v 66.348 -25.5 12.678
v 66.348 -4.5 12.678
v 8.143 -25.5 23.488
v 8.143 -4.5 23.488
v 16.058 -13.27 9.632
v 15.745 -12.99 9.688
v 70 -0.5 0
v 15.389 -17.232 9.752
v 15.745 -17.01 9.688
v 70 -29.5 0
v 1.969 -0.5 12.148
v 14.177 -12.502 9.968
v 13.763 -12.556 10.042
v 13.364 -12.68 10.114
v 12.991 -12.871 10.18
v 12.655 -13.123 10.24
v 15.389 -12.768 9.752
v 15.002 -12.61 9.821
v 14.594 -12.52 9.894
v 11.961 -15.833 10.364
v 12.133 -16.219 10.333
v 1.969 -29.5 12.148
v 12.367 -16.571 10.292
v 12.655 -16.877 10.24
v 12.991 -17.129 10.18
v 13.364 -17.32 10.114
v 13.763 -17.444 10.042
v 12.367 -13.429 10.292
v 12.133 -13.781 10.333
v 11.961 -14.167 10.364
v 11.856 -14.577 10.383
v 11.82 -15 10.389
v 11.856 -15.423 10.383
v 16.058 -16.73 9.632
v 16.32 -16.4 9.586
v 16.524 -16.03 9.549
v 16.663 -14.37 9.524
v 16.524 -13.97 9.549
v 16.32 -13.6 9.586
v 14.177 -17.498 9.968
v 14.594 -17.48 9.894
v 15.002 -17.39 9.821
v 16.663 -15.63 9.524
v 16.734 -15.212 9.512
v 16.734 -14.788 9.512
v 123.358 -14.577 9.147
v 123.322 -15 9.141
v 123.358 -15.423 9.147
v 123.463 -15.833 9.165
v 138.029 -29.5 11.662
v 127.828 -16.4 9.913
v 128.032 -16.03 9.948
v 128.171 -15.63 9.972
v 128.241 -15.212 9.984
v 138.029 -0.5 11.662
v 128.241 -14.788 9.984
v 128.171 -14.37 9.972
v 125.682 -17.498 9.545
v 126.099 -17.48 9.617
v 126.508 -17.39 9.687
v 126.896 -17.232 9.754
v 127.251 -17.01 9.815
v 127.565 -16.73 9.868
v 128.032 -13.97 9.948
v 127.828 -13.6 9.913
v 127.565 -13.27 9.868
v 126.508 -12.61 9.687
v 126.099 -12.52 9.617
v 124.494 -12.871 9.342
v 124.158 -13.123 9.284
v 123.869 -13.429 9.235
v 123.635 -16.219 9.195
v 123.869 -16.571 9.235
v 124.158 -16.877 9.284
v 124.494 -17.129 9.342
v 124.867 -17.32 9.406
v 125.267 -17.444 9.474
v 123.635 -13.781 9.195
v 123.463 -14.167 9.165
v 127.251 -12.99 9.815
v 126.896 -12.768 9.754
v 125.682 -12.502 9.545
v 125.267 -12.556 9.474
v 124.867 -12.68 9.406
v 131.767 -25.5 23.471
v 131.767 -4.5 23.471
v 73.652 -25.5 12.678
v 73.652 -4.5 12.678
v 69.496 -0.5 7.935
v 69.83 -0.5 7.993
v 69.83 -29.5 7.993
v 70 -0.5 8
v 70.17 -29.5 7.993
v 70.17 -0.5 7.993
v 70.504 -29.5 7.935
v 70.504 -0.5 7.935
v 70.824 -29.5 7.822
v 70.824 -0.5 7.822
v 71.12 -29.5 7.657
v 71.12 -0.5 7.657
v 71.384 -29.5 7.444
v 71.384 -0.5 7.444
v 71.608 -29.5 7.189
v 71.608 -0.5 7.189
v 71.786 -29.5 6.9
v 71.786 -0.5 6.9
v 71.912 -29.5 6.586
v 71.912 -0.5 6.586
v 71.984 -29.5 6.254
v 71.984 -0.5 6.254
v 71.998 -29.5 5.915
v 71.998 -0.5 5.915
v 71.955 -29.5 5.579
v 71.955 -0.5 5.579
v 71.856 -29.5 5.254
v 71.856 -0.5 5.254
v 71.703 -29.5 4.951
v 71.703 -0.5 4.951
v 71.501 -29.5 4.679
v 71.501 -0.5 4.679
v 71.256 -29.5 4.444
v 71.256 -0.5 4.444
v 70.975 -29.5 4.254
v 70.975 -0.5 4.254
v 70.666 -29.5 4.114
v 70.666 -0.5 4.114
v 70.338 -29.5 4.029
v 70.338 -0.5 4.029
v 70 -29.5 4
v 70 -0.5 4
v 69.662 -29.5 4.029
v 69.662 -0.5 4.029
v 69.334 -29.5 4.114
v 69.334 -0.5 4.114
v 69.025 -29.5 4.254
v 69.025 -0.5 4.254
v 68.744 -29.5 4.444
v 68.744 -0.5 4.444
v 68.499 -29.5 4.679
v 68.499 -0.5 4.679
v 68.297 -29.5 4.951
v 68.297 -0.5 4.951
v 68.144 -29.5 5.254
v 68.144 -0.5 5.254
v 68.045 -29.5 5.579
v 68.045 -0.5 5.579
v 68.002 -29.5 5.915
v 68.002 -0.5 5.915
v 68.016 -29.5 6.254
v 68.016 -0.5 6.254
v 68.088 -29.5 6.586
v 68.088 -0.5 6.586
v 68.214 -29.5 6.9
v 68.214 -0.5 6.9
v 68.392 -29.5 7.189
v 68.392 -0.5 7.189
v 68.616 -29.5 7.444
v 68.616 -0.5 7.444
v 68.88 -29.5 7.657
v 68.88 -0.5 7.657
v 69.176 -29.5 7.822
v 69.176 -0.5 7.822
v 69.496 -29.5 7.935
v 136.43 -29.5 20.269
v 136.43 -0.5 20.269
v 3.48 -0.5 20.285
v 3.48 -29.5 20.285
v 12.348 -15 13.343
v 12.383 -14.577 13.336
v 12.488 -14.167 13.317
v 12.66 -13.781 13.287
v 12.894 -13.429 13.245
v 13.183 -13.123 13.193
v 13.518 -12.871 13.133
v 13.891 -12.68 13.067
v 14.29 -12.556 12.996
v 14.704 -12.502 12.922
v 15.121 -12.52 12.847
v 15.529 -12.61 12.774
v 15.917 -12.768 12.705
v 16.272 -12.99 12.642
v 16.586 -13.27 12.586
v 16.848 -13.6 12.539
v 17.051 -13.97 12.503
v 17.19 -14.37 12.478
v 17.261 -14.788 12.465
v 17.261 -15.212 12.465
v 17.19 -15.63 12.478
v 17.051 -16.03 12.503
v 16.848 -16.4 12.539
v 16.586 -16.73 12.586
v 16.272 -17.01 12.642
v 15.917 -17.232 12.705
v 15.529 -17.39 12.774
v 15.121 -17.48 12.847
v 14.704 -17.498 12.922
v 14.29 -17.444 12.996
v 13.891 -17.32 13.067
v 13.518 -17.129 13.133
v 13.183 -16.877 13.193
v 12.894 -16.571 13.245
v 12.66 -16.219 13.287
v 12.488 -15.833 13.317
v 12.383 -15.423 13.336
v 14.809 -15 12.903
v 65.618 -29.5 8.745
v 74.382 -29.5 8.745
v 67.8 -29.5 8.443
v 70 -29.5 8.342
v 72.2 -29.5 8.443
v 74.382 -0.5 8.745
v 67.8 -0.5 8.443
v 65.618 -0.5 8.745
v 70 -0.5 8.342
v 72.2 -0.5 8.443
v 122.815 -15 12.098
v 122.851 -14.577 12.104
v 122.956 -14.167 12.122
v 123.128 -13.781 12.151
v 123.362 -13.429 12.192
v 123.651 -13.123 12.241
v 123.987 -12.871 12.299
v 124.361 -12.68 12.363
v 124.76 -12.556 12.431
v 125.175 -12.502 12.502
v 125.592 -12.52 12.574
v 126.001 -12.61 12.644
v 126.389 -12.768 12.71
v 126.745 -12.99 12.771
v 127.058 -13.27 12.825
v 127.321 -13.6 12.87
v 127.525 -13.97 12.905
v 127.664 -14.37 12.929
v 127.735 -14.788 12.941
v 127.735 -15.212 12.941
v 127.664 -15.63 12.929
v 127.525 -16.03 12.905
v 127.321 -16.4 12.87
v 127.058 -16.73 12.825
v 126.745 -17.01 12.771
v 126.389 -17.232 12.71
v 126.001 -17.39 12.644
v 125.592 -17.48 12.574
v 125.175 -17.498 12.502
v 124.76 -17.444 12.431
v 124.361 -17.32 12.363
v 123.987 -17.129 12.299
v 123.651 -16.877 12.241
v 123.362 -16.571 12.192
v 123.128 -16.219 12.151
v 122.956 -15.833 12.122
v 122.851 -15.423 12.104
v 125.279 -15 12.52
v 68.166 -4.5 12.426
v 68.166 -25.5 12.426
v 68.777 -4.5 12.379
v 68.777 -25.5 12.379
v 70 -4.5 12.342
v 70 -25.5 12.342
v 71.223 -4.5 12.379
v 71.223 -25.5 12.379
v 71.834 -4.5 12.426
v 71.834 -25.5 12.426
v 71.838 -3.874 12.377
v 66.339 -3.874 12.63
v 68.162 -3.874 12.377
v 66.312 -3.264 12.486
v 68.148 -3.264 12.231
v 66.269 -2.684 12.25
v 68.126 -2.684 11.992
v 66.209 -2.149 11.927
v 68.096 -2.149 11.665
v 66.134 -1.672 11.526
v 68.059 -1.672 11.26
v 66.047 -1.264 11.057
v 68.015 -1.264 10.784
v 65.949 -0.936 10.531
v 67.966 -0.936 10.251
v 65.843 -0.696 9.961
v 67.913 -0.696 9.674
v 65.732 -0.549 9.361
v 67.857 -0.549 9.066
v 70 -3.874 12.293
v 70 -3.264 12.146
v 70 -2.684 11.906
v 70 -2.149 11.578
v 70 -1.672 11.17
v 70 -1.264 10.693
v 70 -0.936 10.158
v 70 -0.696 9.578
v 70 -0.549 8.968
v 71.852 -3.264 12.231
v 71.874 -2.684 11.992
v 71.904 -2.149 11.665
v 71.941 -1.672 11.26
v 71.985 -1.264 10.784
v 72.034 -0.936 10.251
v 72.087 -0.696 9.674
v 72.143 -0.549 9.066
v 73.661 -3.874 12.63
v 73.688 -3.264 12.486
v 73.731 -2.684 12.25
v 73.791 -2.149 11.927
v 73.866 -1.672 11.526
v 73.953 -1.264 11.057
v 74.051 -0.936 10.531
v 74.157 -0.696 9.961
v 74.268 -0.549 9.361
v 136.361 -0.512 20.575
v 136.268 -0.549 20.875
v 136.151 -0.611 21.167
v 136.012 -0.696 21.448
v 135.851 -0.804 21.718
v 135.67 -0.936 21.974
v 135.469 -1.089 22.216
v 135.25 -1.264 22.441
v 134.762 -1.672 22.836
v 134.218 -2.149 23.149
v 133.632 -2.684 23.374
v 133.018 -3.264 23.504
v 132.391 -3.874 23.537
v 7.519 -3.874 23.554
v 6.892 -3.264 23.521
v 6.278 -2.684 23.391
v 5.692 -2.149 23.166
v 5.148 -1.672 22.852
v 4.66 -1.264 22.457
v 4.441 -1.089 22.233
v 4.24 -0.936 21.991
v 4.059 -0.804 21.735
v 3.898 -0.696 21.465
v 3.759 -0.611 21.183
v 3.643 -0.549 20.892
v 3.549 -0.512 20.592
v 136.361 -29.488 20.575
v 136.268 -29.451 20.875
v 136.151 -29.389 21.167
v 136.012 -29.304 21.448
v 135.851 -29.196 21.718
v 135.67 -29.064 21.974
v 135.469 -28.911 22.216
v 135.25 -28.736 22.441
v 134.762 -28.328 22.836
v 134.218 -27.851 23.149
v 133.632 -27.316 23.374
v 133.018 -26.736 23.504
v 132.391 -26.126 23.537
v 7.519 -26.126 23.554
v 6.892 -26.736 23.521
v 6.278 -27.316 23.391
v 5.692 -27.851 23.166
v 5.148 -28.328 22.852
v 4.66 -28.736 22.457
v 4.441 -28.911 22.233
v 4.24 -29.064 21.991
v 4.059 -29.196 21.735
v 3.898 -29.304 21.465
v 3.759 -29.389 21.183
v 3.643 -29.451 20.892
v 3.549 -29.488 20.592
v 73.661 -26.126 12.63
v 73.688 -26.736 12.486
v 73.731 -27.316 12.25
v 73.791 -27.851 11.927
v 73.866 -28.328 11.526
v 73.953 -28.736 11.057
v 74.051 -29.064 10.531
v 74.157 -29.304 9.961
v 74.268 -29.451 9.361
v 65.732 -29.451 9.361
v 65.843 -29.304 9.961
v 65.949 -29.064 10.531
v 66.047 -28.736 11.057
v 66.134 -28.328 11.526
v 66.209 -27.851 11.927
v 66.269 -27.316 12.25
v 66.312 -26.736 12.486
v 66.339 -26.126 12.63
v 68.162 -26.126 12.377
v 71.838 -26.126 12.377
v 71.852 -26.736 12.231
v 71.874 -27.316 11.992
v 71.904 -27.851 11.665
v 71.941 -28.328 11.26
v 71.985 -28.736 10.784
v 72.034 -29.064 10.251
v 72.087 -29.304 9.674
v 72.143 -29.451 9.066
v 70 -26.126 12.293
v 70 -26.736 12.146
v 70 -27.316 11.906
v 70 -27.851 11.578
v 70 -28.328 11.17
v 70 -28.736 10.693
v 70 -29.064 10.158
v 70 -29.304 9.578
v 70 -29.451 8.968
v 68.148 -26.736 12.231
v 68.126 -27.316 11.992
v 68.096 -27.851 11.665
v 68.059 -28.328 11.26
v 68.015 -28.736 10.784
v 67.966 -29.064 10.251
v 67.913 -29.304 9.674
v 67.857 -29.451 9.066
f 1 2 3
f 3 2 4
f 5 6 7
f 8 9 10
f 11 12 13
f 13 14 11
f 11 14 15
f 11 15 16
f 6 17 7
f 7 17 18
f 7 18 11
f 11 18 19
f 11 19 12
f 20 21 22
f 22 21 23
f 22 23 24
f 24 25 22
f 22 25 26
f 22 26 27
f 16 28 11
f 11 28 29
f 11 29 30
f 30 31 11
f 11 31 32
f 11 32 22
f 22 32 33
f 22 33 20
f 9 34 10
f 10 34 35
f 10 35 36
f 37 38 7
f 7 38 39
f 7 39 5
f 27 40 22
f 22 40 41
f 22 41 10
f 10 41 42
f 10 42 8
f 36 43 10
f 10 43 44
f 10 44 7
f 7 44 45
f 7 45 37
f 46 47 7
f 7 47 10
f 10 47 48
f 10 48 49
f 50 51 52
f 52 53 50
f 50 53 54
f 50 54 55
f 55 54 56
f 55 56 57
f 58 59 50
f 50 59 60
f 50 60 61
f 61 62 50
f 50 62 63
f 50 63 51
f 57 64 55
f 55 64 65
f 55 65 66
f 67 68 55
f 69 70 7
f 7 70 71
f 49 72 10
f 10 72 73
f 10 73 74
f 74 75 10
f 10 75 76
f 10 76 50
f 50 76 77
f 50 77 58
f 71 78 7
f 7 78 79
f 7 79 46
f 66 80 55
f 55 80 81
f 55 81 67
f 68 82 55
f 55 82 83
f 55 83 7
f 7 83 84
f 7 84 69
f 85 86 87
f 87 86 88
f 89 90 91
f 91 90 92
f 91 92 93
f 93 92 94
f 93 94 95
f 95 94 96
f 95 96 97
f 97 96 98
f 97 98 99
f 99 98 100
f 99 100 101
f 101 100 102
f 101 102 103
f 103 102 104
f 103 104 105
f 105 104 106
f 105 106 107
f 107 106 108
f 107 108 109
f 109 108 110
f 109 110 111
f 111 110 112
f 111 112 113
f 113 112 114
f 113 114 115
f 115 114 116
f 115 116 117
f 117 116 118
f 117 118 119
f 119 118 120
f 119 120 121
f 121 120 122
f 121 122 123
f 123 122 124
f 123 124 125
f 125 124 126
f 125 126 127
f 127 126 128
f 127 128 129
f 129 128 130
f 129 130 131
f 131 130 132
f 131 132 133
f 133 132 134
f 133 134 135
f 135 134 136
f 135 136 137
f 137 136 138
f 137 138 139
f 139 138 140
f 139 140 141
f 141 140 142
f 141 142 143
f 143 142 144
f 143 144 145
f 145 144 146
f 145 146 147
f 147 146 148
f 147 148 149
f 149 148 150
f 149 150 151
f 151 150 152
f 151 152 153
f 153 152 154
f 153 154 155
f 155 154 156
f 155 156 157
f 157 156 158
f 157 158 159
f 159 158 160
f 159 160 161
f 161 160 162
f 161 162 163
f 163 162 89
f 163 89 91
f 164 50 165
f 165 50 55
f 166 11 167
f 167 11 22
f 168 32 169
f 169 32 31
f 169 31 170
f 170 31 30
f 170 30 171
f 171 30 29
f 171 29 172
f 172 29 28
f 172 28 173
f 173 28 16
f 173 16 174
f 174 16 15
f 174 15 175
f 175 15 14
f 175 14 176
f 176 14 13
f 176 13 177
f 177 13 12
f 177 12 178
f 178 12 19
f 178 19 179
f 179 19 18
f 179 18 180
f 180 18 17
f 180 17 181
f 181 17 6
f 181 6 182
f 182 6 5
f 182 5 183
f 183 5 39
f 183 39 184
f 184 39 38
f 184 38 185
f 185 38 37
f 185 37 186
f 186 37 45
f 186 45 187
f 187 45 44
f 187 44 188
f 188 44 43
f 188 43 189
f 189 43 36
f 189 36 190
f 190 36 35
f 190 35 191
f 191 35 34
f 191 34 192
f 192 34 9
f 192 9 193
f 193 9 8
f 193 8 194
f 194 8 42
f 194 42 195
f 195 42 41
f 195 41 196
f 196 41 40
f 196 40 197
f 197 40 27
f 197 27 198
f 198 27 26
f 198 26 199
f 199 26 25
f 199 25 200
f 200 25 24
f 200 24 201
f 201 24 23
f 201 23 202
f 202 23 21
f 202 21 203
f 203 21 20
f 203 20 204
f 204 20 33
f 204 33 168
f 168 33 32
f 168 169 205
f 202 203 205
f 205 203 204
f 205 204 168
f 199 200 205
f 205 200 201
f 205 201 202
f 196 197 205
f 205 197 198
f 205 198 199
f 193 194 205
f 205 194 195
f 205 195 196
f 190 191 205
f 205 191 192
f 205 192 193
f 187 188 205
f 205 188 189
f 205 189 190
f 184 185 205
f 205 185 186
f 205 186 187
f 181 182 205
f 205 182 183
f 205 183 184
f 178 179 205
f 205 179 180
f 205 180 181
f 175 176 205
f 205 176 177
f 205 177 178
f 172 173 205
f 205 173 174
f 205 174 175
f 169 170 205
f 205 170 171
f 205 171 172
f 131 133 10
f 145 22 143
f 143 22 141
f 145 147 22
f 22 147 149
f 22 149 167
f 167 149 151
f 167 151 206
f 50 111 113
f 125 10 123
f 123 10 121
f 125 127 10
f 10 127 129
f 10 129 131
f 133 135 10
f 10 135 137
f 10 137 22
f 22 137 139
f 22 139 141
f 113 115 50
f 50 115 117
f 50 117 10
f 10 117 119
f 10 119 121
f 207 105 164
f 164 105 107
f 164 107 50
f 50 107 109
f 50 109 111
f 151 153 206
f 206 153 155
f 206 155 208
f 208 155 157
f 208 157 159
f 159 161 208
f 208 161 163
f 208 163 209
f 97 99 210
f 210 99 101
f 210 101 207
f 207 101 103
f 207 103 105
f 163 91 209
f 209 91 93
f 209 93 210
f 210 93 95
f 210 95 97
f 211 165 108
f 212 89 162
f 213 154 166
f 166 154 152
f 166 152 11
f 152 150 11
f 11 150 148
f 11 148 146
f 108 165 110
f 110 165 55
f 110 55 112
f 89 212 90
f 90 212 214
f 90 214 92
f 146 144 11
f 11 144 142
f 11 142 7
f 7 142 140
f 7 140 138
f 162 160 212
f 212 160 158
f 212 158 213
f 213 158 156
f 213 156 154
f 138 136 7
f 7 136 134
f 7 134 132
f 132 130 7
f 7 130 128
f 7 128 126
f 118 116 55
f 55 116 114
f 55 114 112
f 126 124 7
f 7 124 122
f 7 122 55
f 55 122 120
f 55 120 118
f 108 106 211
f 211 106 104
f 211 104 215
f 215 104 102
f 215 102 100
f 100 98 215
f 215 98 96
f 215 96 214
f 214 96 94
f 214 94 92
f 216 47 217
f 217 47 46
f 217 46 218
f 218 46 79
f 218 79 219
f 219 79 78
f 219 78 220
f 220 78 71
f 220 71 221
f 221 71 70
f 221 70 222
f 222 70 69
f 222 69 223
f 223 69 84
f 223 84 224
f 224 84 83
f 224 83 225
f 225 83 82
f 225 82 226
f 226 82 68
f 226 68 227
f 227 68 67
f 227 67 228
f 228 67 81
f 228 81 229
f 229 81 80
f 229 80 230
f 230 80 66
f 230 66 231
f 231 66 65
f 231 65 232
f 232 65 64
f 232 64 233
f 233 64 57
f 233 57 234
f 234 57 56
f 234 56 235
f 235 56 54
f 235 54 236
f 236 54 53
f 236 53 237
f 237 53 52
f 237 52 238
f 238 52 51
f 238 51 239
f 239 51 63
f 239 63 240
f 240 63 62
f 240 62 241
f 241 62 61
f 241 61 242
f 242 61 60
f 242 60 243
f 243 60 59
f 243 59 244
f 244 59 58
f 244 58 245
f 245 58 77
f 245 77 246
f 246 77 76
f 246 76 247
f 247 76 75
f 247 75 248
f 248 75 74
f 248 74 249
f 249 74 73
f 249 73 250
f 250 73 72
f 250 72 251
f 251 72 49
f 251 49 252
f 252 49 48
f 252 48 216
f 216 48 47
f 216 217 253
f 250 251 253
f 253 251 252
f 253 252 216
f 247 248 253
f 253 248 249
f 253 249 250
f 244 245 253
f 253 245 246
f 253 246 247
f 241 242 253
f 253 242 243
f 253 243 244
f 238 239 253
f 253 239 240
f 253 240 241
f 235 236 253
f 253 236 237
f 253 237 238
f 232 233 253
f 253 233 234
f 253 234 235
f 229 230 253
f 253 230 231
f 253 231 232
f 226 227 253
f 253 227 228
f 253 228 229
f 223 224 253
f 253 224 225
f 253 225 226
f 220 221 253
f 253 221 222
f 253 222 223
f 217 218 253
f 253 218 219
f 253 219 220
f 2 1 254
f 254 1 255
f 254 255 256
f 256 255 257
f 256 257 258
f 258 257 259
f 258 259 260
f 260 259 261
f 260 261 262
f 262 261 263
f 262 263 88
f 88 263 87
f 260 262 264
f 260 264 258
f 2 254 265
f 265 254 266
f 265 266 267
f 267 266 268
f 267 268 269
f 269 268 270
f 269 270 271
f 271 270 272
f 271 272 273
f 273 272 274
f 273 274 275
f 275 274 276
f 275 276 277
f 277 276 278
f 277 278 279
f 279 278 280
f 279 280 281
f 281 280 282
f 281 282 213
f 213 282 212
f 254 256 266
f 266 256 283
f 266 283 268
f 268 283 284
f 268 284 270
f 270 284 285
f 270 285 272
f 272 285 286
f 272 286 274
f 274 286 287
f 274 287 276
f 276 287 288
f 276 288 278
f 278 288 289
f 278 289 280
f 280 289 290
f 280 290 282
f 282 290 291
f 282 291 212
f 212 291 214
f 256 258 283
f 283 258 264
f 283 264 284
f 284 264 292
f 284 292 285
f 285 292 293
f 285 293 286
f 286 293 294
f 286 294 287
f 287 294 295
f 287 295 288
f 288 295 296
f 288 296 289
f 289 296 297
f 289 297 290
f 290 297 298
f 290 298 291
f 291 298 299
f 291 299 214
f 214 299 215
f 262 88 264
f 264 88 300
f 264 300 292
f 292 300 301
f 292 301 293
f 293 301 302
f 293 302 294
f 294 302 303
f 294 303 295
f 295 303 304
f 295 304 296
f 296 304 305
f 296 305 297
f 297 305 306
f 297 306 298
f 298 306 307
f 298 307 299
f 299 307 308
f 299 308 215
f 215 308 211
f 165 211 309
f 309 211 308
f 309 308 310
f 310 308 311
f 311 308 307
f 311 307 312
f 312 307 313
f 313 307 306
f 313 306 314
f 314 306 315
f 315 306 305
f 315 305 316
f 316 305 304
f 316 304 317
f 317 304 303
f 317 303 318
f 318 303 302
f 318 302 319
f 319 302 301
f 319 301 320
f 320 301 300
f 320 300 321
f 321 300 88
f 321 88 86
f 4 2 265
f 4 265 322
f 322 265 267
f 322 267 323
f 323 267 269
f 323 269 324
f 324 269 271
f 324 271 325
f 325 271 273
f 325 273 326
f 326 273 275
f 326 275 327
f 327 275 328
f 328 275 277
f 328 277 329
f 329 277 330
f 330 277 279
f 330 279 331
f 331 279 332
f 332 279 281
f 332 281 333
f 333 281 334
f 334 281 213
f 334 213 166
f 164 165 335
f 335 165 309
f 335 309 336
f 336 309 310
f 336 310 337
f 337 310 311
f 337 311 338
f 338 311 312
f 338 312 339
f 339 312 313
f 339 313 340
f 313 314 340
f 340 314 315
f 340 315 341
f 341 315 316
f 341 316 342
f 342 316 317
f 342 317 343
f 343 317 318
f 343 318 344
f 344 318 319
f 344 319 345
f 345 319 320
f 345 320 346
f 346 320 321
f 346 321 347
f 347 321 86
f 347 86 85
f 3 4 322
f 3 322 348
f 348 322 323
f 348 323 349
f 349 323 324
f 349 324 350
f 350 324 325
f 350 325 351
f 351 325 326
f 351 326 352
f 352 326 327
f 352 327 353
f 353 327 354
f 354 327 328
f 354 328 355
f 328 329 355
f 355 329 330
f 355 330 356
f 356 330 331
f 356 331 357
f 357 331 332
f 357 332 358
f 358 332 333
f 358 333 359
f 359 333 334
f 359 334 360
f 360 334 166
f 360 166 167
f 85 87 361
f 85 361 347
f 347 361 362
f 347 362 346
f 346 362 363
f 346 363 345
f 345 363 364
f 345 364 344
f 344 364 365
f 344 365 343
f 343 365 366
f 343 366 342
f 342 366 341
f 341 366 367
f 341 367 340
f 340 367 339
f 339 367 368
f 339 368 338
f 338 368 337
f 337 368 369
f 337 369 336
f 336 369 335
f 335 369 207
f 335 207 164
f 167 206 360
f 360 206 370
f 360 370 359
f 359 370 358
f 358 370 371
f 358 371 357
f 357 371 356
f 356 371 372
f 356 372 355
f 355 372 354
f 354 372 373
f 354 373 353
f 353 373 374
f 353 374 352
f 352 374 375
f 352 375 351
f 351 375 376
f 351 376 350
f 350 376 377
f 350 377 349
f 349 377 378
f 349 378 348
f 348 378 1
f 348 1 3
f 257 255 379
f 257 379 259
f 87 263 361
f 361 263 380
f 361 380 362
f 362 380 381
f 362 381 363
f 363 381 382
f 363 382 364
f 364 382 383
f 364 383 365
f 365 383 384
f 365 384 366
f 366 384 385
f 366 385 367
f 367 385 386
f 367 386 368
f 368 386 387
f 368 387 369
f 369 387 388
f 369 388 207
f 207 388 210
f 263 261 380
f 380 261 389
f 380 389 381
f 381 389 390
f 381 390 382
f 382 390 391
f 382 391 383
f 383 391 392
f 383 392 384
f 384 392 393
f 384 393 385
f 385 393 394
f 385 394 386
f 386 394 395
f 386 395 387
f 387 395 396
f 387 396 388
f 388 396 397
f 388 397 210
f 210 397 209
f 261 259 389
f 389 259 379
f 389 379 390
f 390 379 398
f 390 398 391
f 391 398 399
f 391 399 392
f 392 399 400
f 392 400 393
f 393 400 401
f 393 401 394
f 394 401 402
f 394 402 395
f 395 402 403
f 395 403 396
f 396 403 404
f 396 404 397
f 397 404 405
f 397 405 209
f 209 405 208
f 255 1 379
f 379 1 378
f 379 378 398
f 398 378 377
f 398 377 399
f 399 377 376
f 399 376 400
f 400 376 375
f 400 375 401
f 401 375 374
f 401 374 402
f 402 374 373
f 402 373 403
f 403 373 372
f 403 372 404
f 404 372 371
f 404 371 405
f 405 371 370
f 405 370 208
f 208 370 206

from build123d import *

# Parameters (mm, degrees)
ESQUISSE1_W              = 140
ESQUISSE1_H              = 30
BOSS_EXTRU_1_DEPTH       = 20
ESQUISSE3_W              = 140
ESQUISSE3_H              = 30
BOSS_EXTRU_2_DEPTH       = 20
BOSS_EXTRU_3_DEPTH       = 30
BOSS_EXTRU_4_DEPTH       = 30
ESQUISSE12_W             = 140
ESQUISSE12_H             = 30
ENL_V_MAT_EXTRU_1_DEPTH  = 41
ESQUISSE13_R             = 2
ENL_V_MAT_EXTRU_2_DEPTH  = 31
ESQUISSE25_R             = 2.5
ENL_V_MAT_EXTRU_11_DEPTH = 3
ENL_V_MAT_EXTRU_5_DEPTH  = 31
ENL_V_MAT_EXTRU_6_DEPTH  = 31
ESQUISSE19_W             = 12.781453569
ESQUISSE19_H             = 30
ENL_V_MAT_EXTRU_7_DEPTH  = 2
ESQUISSE20_W             = 12.289859201
ESQUISSE20_H             = 30
ENL_V_MAT_EXTRU_8_DEPTH  = 2
ENL_V_MAT_EXTRU_9_DEPTH  = 0.5
ENL_V_MAT_EXTRU_10_DEPTH = 0.5
ESQUISSE15_R             = 2.5
ENL_V_MAT_EXTRU_15_DEPTH = 3
CONG_1_R                 = 20
CONG_3_R                 = 4


with BuildPart() as part:
    # Esquisse1 → Boss.-Extru.1 (new body)
    with BuildSketch(Plane.XY):
        with Locations((70, 15)):
            Rectangle(ESQUISSE1_W, ESQUISSE1_H)
    extrude(amount=BOSS_EXTRU_1_DEPTH)

    # Esquisse3 → Boss.-Extru.2 (add)
    with BuildSketch(Plane.XY.offset(20)):
        with Locations((70, 15)):
            Rectangle(ESQUISSE3_W, ESQUISSE3_H)
    extrude(amount=BOSS_EXTRU_2_DEPTH)

    # Esquisse5 → Boss.-Extru.3 (add)
    with BuildSketch(Plane.XZ):
        Polygon((70, 12), (140, 25), (140, 12), (70, 0), align=None)
    extrude(amount=BOSS_EXTRU_3_DEPTH)

    # Esquisse6 → Boss.-Extru.4 (add)
    with BuildSketch(Plane.XZ):
        Polygon((0, 25), (0, 12.5), (70, 0), (70, 12), align=None)
    extrude(amount=BOSS_EXTRU_4_DEPTH)

    # Esquisse12 → Enlèv. mat.-Extru.1 (cut, through all)
    with BuildSketch(Plane.XY.offset(40)):
        with Locations((70, 15)):
            Rectangle(ESQUISSE12_W, ESQUISSE12_H)
    extrude(amount=-ENL_V_MAT_EXTRU_1_DEPTH, mode=Mode.SUBTRACT)

    # Esquisse13 → Enlèv. mat.-Extru.2 (cut, through all)
    with BuildSketch(Plane.XZ.offset(30)):
        with Locations((70, 6)):
            Circle(ESQUISSE13_R)
    extrude(amount=-ENL_V_MAT_EXTRU_2_DEPTH, mode=Mode.SUBTRACT)

    # Esquisse25 → Enlèv. mat.-Extru.11 (cut)
    with BuildSketch(Plane(origin=(2.1631644, 0, 12.113720643), x_dir=(-0.984427576, 0, 0.175790638), z_dir=(-0.175790638, 0, -0.984427576))):
        with Locations((-12.309930286, -15)):
            Circle(ESQUISSE25_R)
    extrude(amount=-ENL_V_MAT_EXTRU_11_DEPTH, mode=Mode.SUBTRACT)

    # Esquisse16 → Enlèv. mat.-Extru.5 (cut, through all)
    with BuildSketch(Plane(origin=(0, 0, 0), x_dir=(1, 0, 0), z_dir=(0, 1, 0))):
        Polygon((0, -12.5), (2.244032354, -24.583251134), (0, -25), align=None)
    extrude(amount=-ENL_V_MAT_EXTRU_5_DEPTH, mode=Mode.SUBTRACT)

    # Esquisse17 → Enlèv. mat.-Extru.6 (cut, through all)
    with BuildSketch(Plane(origin=(0, 0, 0), x_dir=(1, 0, 0), z_dir=(0, 1, 0))):
        Polygon((140, -12), (137.666206352, -24.56658118), (140, -25), align=None)
    extrude(amount=-ENL_V_MAT_EXTRU_6_DEPTH, mode=Mode.SUBTRACT)

    # Esquisse19 → Enlèv. mat.-Extru.7 (cut)
    with BuildSketch(Plane(origin=(137.486683764, 0, 25.53324127), x_dir=(0.182592194, 0, -0.983188736), z_dir=(0.983188736, 0, 0.182592194))):
        with Locations((7.373915521, -15)):
            Rectangle(ESQUISSE19_W, ESQUISSE19_H)
    extrude(amount=-ENL_V_MAT_EXTRU_7_DEPTH, mode=Mode.SUBTRACT)

    # Esquisse20 → Enlèv. mat.-Extru.8 (cut)
    with BuildSketch(Plane(origin=(-2.244032354, 0, 0.416748866), x_dir=(0.182592194, 0, 0.983188736), z_dir=(-0.983188736, 0, 0.182592194))):
        with Locations((18.434788802, -15)):
            Rectangle(ESQUISSE20_W, ESQUISSE20_H)
    extrude(amount=-ENL_V_MAT_EXTRU_8_DEPTH, mode=Mode.SUBTRACT)

    # Esquisse22 → Enlèv. mat.-Extru.9 (cut)
    with BuildSketch(Plane.XZ.offset(30)):
        Polygon((4.210409826, 24.218066747), (1.968902204, 12.148410321), (70, 0), (138.028566573, 11.662039984), (135.69982888, 24.201396792), (70, 12), align=None)
    extrude(amount=-ENL_V_MAT_EXTRU_9_DEPTH, mode=Mode.SUBTRACT)

    # Esquisse23 → Enlèv. mat.-Extru.10 (cut)
    with BuildSketch(Plane(origin=(0, 0, 0), x_dir=(1, 0, 0), z_dir=(0, 1, 0))):
        Polygon((1.968902204, -12.148410321), (4.210409826, -24.218066747), (70, -12), (135.69982888, -24.201396792), (138.028566573, -11.662039984), (70, 0), align=None)
    extrude(amount=-ENL_V_MAT_EXTRU_10_DEPTH, mode=Mode.SUBTRACT)

    # Esquisse15 → Enlèv. mat.-Extru.15 (cut)
    with BuildSketch(Plane(origin=(1.998413957, 0, -11.65741475), x_dir=(-0.985622255, 0, -0.168963815), z_dir=(0.168963815, 0, -0.985622255))):
        with Locations((-125.593557837, -15)):
            Circle(ESQUISSE15_R)
    extrude(amount=-ENL_V_MAT_EXTRU_15_DEPTH, mode=Mode.SUBTRACT)

    # Congé1
    cong_1_edges = [part.edges().sort_by_distance(p)[0] for p in [
        (70, -15, 12),
    ]]
    fillet(cong_1_edges, radius=CONG_1_R)

    # Congé3
    cong_3_edges = [part.edges().sort_by_distance(p)[0] for p in [
        (4.210409826, -15, 24.218066747),
        (104.675836379, -29.5, 18.439798185),
        (135.69982888, -15, 24.201396792),
        (35.279282974, -0.5, 18.448133162),
        (35.279282974, -29.5, 18.448133162),
        (104.675836379, -0.5, 18.439798185),
        (70, -0.5, 12.341974299),
        (70, -29.5, 12.341974299),
    ]]
    fillet(cong_3_edges, radius=CONG_3_R)


solid = part.part
